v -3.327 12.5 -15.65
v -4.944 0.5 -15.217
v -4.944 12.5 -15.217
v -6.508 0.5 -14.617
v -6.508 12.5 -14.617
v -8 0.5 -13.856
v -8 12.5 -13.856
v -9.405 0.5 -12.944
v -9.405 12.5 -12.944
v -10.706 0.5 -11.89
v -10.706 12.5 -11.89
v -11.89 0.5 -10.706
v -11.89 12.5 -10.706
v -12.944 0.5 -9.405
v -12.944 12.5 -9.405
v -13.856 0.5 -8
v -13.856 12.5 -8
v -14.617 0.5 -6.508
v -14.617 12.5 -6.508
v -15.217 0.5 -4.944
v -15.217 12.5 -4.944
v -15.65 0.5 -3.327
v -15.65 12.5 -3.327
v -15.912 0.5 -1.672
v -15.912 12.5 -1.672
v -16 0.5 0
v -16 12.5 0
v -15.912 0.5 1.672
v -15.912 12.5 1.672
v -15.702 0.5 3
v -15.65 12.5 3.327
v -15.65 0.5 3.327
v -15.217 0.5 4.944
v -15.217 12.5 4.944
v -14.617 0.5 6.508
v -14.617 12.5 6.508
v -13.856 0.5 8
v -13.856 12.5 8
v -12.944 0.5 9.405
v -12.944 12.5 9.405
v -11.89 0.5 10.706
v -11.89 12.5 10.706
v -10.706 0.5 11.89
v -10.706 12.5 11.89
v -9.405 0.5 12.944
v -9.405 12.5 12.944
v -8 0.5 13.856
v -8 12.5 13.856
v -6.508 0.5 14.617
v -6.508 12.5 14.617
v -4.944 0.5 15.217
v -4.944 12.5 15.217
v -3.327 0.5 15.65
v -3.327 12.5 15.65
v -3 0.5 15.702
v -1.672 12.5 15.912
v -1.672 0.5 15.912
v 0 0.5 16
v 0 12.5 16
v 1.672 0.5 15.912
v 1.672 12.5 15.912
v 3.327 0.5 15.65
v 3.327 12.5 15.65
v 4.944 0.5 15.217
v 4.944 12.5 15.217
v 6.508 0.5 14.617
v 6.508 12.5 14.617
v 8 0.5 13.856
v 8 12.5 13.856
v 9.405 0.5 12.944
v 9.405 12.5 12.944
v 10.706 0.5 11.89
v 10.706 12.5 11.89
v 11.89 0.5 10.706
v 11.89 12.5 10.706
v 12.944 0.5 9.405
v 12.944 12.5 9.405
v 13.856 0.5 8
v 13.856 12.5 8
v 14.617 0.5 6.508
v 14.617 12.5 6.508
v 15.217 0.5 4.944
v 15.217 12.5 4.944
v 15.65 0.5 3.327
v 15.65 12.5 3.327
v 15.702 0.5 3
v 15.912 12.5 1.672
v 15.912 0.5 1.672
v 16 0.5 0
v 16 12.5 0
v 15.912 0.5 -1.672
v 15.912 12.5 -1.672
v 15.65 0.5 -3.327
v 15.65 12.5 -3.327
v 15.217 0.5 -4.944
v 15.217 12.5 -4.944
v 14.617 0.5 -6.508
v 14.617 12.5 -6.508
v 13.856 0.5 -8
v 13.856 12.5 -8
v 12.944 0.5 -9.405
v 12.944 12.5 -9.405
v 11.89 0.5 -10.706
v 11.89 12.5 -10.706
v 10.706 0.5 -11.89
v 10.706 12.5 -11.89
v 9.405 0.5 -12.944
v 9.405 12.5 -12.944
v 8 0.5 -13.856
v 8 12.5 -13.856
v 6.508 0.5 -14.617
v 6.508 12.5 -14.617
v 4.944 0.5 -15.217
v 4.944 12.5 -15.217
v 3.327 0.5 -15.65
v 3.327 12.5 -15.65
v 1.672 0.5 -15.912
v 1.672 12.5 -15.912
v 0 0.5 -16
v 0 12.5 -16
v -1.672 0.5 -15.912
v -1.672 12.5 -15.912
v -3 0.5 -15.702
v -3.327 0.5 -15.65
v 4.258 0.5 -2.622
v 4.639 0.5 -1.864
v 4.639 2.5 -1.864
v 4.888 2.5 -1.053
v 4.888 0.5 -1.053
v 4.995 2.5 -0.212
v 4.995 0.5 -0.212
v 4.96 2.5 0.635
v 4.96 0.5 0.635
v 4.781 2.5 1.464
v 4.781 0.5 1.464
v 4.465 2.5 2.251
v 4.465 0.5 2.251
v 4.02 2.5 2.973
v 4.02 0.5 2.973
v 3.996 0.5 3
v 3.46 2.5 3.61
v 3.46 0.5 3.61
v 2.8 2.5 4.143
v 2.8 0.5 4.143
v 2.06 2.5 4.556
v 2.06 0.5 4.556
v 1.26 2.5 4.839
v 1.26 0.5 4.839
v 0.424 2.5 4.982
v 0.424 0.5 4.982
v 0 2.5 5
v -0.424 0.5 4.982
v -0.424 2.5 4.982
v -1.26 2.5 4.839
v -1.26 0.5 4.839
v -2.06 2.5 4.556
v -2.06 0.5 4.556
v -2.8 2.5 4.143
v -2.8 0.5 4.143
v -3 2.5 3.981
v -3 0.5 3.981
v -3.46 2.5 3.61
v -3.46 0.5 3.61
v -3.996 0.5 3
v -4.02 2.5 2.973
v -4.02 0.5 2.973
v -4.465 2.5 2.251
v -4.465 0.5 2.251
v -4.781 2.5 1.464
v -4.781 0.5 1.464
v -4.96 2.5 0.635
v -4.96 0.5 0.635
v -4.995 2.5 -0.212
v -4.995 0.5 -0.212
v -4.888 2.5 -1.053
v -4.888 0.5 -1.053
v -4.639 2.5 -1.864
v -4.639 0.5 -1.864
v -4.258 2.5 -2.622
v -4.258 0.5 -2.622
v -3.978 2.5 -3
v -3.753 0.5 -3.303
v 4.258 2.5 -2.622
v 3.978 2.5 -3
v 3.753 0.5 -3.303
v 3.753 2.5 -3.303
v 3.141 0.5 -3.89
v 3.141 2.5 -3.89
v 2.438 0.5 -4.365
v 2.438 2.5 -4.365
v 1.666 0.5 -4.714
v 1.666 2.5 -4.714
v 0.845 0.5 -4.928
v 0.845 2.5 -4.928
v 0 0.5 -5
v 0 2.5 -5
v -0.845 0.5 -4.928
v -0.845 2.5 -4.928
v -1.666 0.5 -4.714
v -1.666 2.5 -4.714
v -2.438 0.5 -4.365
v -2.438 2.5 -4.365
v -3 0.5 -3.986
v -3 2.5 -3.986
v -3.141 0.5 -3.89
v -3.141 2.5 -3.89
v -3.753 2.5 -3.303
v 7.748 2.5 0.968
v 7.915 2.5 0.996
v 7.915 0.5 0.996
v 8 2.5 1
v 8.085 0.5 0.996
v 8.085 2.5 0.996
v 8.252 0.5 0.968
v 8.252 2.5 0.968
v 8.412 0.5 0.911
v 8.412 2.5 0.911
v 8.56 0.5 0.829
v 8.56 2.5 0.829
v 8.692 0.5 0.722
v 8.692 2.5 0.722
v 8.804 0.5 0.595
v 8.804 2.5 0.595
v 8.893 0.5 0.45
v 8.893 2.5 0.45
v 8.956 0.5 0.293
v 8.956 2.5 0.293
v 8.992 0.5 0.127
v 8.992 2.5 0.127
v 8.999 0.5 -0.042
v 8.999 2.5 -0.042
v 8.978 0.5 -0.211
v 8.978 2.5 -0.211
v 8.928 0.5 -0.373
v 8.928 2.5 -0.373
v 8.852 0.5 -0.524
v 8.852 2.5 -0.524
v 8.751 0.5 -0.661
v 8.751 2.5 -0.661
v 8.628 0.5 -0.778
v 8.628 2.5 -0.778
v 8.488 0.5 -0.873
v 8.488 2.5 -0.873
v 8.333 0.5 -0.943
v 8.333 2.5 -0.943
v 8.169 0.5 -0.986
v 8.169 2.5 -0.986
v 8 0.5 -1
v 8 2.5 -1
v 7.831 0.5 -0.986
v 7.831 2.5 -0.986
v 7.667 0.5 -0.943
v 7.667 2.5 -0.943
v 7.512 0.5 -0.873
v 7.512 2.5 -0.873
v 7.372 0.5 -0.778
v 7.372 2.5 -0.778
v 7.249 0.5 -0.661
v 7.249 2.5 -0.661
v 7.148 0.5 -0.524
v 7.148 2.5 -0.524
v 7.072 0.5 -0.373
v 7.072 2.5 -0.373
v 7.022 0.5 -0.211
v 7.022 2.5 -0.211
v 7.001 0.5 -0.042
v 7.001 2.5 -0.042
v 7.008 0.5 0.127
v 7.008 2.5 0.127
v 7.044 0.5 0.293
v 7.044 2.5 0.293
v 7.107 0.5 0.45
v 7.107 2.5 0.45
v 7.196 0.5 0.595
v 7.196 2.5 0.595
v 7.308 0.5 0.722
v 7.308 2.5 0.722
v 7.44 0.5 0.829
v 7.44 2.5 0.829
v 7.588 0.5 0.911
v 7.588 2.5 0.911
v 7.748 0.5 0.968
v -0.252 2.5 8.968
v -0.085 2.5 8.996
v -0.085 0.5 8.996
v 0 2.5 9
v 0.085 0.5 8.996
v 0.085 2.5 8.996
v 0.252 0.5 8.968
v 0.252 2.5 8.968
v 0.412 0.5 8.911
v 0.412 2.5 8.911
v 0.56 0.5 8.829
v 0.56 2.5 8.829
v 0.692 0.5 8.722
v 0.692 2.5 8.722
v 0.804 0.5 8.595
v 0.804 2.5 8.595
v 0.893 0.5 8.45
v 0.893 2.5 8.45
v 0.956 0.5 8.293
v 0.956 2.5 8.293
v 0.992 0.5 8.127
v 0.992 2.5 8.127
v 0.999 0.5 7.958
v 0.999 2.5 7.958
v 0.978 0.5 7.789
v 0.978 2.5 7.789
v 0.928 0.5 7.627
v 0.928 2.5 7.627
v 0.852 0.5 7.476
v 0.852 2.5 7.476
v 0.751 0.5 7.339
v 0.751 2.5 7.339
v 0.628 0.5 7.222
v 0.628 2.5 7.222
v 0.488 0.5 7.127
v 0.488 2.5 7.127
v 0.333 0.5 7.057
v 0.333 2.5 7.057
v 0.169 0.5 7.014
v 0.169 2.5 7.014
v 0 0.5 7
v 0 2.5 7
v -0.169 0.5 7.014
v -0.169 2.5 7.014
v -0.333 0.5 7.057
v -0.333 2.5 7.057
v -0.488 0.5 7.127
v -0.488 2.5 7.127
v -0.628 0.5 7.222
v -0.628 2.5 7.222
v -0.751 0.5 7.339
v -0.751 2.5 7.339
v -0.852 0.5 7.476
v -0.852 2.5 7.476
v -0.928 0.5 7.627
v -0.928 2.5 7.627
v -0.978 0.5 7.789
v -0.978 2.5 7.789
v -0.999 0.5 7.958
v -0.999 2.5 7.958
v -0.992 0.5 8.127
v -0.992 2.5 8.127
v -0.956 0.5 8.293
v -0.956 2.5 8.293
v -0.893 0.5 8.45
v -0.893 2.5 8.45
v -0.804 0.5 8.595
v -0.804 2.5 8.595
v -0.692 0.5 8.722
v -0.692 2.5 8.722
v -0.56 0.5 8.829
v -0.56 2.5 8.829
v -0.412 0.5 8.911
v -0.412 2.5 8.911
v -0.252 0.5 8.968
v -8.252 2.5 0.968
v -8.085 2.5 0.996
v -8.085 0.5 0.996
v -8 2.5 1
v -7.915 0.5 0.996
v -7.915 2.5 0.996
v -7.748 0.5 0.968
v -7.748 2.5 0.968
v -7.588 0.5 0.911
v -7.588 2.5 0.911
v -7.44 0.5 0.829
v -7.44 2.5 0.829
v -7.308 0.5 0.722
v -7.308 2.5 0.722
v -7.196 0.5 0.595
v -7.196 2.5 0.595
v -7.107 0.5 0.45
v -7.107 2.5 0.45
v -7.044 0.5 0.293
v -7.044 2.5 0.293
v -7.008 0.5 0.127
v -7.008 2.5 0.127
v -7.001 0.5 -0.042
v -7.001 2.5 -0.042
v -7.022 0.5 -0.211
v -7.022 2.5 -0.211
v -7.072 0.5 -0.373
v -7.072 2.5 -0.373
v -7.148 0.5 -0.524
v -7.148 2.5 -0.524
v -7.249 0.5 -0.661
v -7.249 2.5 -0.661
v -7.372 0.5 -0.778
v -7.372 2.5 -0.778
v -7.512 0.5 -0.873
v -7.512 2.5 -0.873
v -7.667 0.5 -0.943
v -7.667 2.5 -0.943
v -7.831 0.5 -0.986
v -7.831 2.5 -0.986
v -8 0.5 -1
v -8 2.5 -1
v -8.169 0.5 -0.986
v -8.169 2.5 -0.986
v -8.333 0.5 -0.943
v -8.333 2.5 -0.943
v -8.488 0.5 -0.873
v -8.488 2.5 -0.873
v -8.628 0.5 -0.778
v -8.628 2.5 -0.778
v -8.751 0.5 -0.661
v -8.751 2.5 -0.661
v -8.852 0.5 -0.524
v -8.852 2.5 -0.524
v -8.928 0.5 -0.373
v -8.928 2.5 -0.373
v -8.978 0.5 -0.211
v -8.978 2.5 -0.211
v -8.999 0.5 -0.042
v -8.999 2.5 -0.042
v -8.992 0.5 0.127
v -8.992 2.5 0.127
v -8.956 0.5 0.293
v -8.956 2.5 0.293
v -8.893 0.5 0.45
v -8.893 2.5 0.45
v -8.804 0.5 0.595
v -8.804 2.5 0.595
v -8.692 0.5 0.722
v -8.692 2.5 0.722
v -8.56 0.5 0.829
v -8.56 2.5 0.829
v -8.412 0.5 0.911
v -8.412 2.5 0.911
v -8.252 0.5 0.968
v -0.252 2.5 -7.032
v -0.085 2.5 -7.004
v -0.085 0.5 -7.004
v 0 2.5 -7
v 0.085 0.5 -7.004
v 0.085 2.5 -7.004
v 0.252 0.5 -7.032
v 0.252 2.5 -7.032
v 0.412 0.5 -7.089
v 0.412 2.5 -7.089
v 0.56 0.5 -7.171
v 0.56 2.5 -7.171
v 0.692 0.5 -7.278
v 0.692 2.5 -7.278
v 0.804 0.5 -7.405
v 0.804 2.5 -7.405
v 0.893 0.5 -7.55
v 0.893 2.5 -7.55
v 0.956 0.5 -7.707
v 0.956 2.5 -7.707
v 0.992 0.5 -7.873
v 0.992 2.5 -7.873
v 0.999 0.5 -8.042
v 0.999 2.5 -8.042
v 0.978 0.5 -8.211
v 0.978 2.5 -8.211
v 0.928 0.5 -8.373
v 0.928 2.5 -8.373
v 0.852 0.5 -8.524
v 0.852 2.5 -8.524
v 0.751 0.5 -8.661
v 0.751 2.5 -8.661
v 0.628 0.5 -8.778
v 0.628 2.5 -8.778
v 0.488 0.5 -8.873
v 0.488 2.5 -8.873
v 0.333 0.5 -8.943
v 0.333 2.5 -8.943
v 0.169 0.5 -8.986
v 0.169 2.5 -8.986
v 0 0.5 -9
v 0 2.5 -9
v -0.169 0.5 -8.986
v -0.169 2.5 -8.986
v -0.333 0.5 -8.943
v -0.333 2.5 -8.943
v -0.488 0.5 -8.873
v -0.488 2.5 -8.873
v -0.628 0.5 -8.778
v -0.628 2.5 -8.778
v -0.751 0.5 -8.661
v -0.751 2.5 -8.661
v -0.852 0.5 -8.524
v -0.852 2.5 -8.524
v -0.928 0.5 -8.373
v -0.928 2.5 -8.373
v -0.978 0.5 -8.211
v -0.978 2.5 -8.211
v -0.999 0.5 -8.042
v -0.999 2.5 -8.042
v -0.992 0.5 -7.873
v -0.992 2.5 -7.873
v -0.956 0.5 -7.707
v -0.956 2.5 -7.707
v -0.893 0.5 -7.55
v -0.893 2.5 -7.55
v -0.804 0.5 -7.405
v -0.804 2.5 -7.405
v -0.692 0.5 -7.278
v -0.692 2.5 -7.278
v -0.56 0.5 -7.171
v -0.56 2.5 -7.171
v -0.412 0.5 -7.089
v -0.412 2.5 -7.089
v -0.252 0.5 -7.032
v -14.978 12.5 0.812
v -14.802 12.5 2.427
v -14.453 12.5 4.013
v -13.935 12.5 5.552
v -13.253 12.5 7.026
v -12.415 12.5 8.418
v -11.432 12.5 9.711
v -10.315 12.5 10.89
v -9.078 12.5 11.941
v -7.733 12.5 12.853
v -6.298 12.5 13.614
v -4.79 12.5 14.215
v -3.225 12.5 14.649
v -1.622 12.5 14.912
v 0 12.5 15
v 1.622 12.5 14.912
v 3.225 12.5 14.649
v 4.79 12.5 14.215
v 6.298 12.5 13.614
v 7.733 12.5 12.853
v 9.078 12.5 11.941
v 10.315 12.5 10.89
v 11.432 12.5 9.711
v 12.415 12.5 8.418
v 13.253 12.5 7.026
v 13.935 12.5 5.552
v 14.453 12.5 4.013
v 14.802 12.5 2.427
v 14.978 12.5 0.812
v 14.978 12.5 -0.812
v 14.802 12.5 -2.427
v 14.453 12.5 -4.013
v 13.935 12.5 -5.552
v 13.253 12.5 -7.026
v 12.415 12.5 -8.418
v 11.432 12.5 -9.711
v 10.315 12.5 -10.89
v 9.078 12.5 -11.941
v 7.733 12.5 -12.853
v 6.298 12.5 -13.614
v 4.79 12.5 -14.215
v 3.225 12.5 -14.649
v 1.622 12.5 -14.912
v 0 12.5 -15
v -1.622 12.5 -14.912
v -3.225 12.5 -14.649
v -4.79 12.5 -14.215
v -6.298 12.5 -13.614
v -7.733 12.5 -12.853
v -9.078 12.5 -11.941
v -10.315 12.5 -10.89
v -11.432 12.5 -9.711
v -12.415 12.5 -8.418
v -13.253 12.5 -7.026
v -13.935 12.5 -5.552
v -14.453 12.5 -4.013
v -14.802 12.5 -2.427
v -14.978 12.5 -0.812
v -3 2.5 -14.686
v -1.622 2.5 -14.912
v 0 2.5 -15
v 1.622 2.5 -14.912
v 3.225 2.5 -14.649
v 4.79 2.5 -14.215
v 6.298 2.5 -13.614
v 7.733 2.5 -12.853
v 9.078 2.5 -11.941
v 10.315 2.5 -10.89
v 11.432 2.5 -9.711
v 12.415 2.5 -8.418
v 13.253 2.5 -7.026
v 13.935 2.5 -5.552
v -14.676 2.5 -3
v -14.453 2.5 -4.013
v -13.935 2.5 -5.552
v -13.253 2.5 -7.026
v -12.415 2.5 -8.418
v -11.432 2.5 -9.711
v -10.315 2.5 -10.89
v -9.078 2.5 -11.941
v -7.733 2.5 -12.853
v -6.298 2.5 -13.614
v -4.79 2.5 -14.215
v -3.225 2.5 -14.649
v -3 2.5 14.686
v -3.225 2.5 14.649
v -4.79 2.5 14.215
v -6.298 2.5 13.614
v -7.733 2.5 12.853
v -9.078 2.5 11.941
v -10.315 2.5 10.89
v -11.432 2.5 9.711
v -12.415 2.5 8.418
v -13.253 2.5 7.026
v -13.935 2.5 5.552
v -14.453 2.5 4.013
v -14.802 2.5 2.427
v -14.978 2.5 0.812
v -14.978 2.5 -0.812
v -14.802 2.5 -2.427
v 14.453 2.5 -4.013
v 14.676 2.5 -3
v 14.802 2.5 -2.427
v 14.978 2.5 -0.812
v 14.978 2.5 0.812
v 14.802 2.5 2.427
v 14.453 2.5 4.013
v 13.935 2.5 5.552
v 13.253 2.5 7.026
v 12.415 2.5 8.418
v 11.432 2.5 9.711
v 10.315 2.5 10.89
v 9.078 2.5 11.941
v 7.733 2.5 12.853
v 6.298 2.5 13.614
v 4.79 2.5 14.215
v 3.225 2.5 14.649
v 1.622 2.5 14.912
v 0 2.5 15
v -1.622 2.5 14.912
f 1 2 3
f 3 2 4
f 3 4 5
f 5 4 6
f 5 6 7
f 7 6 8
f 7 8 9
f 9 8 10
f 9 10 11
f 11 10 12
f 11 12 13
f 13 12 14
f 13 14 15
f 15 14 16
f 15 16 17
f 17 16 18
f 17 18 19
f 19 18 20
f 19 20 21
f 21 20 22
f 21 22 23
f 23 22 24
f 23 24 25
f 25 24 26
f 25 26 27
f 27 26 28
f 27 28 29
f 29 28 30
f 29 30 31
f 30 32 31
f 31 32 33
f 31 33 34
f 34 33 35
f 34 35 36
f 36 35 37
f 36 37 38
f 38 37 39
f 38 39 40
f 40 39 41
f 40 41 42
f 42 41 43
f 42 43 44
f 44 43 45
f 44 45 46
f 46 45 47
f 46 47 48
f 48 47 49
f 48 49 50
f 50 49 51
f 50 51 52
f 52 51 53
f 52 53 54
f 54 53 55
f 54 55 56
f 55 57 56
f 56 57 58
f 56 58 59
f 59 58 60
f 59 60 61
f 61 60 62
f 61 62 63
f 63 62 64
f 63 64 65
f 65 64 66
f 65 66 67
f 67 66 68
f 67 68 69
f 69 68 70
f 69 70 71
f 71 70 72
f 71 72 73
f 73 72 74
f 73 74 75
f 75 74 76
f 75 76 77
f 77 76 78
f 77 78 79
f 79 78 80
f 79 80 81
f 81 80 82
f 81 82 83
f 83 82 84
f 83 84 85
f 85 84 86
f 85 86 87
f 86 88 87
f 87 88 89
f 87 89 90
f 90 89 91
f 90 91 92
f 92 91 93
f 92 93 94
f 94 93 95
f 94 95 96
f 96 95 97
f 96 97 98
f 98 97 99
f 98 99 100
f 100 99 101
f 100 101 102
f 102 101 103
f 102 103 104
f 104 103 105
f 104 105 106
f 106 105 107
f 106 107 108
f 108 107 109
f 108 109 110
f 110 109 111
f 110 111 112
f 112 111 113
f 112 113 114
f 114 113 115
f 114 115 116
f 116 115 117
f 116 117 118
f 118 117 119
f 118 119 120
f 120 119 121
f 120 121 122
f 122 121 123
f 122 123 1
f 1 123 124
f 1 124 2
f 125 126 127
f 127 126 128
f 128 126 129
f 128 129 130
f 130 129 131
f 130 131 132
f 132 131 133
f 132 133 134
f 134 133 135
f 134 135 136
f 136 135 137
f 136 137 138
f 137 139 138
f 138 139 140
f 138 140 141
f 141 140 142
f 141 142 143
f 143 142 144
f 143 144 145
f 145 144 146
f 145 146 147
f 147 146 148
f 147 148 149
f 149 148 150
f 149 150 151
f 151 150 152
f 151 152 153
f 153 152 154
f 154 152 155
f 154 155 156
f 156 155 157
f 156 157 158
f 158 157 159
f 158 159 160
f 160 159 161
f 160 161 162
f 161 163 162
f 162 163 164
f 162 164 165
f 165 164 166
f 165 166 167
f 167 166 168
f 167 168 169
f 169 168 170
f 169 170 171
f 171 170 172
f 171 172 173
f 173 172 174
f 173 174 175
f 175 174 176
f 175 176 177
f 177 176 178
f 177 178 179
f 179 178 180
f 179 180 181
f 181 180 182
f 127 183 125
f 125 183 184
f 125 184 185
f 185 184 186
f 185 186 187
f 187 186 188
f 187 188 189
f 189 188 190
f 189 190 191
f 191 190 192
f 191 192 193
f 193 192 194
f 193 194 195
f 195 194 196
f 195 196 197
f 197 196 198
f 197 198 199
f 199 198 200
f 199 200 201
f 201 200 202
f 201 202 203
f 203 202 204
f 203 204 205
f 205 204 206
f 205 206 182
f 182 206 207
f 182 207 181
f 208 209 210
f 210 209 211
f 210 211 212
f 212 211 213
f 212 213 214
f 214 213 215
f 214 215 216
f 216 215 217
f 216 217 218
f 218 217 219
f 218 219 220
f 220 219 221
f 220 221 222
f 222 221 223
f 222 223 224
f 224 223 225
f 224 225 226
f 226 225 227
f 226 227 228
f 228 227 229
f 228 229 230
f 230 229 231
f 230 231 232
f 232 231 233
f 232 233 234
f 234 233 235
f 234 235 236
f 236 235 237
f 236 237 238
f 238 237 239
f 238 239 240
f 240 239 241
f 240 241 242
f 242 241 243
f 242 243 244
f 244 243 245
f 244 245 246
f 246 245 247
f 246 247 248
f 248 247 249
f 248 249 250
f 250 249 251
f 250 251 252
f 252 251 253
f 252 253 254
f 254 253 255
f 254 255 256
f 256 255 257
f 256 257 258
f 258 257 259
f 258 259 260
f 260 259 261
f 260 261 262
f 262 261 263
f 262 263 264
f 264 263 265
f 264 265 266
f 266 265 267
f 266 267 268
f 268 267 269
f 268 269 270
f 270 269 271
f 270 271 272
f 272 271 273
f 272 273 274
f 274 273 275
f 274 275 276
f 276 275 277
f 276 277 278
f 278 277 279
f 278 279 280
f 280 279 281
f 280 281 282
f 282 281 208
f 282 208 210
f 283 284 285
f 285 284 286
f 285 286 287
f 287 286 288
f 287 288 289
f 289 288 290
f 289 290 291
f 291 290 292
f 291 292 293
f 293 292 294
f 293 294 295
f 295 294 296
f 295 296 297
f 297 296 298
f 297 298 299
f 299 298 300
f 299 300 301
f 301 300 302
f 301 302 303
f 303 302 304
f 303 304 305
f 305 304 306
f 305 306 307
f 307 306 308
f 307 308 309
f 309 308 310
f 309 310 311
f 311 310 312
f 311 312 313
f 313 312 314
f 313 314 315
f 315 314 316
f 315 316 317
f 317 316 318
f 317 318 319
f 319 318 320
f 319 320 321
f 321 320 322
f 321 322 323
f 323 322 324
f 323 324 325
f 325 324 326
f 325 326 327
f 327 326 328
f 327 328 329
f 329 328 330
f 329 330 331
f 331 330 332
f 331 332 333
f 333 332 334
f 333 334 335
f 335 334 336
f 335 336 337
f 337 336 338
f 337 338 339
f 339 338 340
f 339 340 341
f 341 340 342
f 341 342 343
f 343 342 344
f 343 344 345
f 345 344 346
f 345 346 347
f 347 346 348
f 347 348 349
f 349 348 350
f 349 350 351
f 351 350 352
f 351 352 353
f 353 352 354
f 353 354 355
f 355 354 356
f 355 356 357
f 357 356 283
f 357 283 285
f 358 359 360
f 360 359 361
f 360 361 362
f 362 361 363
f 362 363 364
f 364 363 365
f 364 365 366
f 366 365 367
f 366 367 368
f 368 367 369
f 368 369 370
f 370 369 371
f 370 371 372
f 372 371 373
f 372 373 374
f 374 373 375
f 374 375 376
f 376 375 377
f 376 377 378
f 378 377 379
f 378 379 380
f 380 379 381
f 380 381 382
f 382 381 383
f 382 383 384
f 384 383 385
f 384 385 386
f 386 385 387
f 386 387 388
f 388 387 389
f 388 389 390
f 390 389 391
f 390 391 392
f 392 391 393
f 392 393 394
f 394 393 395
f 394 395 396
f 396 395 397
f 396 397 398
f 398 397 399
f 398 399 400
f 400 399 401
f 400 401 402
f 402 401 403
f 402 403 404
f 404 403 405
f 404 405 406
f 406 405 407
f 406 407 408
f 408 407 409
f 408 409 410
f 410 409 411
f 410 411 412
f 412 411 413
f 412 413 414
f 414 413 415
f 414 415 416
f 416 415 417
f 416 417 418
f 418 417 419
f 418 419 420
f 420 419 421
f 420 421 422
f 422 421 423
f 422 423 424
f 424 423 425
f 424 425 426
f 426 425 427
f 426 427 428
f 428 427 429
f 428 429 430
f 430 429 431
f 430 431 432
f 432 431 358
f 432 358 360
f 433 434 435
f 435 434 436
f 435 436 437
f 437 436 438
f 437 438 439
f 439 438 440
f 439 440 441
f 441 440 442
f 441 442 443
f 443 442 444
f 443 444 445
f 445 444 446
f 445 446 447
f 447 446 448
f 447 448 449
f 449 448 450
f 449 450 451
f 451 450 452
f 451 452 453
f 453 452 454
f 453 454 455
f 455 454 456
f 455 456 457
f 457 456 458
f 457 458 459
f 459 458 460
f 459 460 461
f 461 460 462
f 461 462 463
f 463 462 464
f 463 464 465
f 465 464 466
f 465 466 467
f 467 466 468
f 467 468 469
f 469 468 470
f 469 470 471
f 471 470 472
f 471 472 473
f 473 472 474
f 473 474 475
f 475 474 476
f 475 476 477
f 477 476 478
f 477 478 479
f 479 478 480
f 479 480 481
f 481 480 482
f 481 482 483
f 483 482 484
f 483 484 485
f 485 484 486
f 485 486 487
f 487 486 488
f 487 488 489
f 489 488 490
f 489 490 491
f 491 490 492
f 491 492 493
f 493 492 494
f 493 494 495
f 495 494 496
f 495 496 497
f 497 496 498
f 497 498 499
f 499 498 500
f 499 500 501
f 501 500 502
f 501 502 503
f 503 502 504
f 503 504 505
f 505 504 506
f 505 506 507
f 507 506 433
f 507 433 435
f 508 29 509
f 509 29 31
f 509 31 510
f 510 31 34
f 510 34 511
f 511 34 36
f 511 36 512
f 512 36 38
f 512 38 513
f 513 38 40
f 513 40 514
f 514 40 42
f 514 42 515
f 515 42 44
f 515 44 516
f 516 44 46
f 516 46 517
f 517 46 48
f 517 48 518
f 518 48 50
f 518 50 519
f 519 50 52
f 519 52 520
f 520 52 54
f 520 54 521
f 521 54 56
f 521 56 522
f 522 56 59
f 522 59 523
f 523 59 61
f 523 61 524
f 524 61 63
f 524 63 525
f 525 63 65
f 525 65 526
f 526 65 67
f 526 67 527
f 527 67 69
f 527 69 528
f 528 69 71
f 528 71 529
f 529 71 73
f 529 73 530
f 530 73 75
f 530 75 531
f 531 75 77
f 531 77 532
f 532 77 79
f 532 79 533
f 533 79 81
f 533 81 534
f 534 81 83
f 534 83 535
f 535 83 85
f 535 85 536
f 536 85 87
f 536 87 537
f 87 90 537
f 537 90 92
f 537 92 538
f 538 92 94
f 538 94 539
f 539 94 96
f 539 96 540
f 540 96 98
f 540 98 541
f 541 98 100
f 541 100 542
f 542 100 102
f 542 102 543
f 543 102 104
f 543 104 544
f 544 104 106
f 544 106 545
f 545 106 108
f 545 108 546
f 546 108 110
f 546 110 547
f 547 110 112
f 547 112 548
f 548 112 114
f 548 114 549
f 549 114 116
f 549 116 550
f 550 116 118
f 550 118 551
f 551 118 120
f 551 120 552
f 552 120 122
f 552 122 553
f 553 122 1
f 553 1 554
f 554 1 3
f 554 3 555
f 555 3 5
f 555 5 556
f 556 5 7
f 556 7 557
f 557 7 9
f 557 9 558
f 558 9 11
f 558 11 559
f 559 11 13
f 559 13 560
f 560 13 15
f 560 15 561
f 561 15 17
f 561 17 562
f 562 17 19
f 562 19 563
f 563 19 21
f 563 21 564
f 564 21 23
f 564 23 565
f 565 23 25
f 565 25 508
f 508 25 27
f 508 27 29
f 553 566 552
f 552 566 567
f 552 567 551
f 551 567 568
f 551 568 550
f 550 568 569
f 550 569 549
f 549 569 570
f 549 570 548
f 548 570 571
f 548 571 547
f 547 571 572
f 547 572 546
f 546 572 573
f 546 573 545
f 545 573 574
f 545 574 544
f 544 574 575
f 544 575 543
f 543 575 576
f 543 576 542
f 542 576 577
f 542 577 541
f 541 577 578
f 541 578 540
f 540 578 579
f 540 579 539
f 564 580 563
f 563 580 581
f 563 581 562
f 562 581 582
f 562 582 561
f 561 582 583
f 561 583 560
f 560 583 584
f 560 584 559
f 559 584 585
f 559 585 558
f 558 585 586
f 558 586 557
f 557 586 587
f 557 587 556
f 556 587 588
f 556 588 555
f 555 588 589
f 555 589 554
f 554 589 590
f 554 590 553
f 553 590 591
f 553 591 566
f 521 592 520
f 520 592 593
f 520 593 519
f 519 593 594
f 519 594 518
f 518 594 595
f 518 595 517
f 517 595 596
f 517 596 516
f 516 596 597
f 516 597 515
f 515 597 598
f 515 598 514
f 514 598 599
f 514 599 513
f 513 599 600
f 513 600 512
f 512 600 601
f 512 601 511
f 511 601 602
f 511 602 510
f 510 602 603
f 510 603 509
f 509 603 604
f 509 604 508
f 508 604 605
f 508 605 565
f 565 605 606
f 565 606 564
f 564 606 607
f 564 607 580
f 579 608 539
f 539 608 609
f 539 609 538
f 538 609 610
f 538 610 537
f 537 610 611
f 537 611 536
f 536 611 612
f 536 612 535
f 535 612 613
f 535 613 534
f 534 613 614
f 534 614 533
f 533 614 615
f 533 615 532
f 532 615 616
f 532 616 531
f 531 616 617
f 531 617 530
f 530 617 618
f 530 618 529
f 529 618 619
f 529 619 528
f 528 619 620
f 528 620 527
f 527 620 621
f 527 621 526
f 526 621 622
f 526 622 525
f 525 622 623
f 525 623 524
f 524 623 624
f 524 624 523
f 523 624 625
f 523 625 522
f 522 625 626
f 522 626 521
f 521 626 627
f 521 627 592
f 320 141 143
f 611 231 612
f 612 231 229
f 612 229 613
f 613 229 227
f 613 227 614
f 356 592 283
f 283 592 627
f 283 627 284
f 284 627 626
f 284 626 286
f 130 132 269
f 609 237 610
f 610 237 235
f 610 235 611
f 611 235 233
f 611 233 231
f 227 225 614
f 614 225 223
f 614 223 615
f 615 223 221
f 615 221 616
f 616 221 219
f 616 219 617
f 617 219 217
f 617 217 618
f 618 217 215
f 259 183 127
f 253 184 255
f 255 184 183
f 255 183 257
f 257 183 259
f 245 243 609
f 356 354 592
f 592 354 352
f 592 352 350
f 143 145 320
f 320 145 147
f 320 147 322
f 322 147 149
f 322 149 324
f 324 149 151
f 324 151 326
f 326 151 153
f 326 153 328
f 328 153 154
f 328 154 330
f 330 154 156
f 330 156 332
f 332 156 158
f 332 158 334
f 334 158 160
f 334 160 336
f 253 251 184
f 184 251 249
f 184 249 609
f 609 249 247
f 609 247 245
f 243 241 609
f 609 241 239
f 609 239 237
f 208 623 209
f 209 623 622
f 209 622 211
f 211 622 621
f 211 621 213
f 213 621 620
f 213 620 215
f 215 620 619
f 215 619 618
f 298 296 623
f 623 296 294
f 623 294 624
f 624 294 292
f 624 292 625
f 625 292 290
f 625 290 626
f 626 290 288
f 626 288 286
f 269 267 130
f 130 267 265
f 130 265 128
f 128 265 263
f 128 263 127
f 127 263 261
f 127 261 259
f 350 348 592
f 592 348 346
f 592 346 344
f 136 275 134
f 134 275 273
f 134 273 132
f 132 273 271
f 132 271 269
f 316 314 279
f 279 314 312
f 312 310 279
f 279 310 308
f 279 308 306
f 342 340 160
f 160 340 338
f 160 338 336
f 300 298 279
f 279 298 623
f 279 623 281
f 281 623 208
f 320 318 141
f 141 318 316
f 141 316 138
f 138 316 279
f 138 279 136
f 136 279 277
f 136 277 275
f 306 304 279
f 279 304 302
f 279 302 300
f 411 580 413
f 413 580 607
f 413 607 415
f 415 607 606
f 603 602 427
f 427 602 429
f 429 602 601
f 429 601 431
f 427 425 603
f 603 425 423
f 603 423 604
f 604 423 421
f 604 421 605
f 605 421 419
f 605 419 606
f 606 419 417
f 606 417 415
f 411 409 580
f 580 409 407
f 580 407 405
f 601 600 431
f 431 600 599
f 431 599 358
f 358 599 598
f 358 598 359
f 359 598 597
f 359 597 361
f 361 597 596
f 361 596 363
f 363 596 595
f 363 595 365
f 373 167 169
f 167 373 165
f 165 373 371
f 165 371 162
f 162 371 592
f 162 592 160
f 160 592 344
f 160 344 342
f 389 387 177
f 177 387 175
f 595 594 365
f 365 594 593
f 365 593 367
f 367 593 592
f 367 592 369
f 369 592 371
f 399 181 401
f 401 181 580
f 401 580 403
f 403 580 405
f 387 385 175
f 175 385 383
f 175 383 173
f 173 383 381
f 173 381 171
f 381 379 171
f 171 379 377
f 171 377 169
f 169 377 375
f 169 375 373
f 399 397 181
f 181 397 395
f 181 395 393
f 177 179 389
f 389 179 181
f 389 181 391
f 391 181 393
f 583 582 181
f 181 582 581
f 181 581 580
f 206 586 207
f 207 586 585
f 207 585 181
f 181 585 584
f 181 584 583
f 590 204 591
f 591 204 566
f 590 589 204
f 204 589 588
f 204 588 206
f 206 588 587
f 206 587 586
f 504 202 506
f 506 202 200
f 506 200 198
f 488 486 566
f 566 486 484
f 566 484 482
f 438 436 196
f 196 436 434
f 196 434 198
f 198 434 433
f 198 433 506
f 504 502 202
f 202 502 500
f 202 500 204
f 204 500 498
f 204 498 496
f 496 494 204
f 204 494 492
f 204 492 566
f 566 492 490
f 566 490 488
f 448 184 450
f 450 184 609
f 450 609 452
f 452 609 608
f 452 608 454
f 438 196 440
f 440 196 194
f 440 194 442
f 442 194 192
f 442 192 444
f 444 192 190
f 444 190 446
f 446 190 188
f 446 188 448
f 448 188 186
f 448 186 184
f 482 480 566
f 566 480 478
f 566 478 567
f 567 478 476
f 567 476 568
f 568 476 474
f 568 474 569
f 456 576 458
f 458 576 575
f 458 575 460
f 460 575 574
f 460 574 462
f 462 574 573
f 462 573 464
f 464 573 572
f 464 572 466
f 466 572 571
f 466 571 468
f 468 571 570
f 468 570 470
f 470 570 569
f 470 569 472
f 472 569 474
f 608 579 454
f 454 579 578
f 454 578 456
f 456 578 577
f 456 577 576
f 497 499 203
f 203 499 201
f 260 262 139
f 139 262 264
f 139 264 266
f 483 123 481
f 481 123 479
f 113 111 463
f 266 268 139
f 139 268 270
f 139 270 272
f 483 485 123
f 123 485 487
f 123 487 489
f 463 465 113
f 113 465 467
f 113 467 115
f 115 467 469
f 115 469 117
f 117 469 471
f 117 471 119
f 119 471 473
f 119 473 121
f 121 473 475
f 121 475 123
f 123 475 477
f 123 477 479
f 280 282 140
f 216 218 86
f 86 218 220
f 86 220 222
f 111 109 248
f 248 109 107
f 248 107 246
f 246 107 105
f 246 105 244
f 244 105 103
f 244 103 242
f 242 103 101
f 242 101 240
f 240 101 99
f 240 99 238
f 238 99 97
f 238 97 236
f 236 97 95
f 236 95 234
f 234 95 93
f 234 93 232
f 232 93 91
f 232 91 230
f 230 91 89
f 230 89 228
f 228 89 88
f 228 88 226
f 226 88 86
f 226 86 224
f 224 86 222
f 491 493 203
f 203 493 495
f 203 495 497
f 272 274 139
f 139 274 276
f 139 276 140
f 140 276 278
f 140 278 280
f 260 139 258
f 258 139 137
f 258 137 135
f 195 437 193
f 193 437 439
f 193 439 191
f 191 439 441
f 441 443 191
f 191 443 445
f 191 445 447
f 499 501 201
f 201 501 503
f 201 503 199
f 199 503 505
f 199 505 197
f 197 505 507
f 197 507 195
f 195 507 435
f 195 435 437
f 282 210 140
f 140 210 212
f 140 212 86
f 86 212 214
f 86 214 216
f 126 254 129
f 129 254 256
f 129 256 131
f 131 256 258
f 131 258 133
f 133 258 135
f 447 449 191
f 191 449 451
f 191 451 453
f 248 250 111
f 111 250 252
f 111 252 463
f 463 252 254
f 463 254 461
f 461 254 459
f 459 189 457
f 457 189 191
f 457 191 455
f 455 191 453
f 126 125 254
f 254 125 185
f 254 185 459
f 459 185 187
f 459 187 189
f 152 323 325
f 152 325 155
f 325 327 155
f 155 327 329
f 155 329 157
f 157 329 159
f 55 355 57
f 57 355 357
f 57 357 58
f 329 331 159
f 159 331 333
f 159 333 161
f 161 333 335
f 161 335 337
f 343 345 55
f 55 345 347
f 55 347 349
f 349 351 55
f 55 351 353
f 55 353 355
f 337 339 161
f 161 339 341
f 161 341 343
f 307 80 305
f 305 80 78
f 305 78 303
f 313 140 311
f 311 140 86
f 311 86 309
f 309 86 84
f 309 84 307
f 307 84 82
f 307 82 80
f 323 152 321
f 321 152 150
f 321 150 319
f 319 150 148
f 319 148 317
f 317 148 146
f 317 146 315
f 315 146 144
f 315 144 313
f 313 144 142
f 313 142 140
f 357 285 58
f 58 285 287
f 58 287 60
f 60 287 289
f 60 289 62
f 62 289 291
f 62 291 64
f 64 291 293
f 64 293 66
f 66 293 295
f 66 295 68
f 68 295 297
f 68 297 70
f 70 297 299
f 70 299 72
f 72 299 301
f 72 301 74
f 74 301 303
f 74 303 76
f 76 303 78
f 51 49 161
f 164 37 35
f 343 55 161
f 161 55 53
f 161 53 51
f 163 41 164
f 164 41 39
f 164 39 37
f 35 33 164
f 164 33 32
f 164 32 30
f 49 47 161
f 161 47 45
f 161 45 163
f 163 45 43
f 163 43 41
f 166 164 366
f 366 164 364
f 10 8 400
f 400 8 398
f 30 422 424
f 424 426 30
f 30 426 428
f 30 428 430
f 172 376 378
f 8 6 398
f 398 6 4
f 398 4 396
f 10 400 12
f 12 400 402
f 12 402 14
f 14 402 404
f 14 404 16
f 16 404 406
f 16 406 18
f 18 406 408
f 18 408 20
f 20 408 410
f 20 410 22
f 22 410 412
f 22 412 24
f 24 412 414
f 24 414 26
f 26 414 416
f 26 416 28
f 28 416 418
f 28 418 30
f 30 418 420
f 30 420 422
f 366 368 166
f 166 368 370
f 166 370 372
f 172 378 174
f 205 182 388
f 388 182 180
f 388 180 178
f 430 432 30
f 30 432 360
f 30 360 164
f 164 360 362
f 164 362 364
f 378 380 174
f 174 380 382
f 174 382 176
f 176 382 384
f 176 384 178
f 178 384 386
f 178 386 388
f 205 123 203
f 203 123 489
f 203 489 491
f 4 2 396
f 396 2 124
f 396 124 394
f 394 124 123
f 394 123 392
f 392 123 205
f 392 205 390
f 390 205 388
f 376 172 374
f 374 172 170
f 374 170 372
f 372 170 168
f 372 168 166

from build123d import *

# Parameters (mm, degrees)
SKETCH1_R           = 16
BOSS_EXTRUDE1_DEPTH = 12.5
SKETCH2_R           = 15
CUT_EXTRUDE1_DEPTH  = 10
SKETCH3_R           = 5
CUT_EXTRUDE2_DEPTH  = 10
SKETCH4_R           = 1
CUT_EXTRUDE3_DEPTH  = 10
SKETCH5_R           = 16
CUT_EXTRUDE4_DEPTH  = 0.5


with BuildPart() as part:
    # Sketch1 → Boss-Extrude1 (new body)
    with BuildSketch(Plane(origin=(0, 0, 0), x_dir=(1, 0, 0), z_dir=(0, 1, 0))):
        with Locations(Location((0, 0, 0), (0, 0, 270))):
            Circle(SKETCH1_R)
    extrude(amount=BOSS_EXTRUDE1_DEPTH)

    # Sketch2 → Cut-Extrude1 (cut)
    with BuildSketch(Plane(origin=(0, 12.5, 0), x_dir=(1, 0, 0), z_dir=(0, 1, 0))):
        with Locations(Location((0, 0, 0), (0, 0, 270))):
            Circle(SKETCH2_R)
    extrude(amount=-CUT_EXTRUDE1_DEPTH, mode=Mode.SUBTRACT)

    # Sketch3 → Cut-Extrude2 (cut)
    with BuildSketch(Plane(origin=(0, 0, 0), x_dir=(-1, 0, 0), z_dir=(0, -1, 0))):
        with Locations(Location((0, 0, 0), (0, 0, 90))):
            Circle(SKETCH3_R)
    extrude(amount=-CUT_EXTRUDE2_DEPTH, mode=Mode.SUBTRACT)

    # Sketch4 → Cut-Extrude3 (cut)
    with BuildSketch(Plane(origin=(0, 0, 0), x_dir=(-1, 0, 0), z_dir=(0, -1, 0))):
        with Locations(Location((0, 8, 0), (0, 0, 90))):
            Circle(SKETCH4_R)
        with Locations(Location((0, -8, 0), (0, 0, 90))):
            Circle(SKETCH4_R)
        with Locations(Location((-8, 0, 0), (0, 0, 90))):
            Circle(SKETCH4_R)
        with Locations(Location((8, 0, 0), (0, 0, 90))):
            Circle(SKETCH4_R)
    extrude(amount=-CUT_EXTRUDE3_DEPTH, mode=Mode.SUBTRACT)

    # Sketch5 → Cut-Extrude4 (cut)
    with BuildSketch(Plane.XZ):
        with Locations(Location((0, 0, 0), (0, 0, 270))):
            Circle(SKETCH5_R)
    extrude(amount=-CUT_EXTRUDE4_DEPTH, mode=Mode.SUBTRACT)


solid = part.part
